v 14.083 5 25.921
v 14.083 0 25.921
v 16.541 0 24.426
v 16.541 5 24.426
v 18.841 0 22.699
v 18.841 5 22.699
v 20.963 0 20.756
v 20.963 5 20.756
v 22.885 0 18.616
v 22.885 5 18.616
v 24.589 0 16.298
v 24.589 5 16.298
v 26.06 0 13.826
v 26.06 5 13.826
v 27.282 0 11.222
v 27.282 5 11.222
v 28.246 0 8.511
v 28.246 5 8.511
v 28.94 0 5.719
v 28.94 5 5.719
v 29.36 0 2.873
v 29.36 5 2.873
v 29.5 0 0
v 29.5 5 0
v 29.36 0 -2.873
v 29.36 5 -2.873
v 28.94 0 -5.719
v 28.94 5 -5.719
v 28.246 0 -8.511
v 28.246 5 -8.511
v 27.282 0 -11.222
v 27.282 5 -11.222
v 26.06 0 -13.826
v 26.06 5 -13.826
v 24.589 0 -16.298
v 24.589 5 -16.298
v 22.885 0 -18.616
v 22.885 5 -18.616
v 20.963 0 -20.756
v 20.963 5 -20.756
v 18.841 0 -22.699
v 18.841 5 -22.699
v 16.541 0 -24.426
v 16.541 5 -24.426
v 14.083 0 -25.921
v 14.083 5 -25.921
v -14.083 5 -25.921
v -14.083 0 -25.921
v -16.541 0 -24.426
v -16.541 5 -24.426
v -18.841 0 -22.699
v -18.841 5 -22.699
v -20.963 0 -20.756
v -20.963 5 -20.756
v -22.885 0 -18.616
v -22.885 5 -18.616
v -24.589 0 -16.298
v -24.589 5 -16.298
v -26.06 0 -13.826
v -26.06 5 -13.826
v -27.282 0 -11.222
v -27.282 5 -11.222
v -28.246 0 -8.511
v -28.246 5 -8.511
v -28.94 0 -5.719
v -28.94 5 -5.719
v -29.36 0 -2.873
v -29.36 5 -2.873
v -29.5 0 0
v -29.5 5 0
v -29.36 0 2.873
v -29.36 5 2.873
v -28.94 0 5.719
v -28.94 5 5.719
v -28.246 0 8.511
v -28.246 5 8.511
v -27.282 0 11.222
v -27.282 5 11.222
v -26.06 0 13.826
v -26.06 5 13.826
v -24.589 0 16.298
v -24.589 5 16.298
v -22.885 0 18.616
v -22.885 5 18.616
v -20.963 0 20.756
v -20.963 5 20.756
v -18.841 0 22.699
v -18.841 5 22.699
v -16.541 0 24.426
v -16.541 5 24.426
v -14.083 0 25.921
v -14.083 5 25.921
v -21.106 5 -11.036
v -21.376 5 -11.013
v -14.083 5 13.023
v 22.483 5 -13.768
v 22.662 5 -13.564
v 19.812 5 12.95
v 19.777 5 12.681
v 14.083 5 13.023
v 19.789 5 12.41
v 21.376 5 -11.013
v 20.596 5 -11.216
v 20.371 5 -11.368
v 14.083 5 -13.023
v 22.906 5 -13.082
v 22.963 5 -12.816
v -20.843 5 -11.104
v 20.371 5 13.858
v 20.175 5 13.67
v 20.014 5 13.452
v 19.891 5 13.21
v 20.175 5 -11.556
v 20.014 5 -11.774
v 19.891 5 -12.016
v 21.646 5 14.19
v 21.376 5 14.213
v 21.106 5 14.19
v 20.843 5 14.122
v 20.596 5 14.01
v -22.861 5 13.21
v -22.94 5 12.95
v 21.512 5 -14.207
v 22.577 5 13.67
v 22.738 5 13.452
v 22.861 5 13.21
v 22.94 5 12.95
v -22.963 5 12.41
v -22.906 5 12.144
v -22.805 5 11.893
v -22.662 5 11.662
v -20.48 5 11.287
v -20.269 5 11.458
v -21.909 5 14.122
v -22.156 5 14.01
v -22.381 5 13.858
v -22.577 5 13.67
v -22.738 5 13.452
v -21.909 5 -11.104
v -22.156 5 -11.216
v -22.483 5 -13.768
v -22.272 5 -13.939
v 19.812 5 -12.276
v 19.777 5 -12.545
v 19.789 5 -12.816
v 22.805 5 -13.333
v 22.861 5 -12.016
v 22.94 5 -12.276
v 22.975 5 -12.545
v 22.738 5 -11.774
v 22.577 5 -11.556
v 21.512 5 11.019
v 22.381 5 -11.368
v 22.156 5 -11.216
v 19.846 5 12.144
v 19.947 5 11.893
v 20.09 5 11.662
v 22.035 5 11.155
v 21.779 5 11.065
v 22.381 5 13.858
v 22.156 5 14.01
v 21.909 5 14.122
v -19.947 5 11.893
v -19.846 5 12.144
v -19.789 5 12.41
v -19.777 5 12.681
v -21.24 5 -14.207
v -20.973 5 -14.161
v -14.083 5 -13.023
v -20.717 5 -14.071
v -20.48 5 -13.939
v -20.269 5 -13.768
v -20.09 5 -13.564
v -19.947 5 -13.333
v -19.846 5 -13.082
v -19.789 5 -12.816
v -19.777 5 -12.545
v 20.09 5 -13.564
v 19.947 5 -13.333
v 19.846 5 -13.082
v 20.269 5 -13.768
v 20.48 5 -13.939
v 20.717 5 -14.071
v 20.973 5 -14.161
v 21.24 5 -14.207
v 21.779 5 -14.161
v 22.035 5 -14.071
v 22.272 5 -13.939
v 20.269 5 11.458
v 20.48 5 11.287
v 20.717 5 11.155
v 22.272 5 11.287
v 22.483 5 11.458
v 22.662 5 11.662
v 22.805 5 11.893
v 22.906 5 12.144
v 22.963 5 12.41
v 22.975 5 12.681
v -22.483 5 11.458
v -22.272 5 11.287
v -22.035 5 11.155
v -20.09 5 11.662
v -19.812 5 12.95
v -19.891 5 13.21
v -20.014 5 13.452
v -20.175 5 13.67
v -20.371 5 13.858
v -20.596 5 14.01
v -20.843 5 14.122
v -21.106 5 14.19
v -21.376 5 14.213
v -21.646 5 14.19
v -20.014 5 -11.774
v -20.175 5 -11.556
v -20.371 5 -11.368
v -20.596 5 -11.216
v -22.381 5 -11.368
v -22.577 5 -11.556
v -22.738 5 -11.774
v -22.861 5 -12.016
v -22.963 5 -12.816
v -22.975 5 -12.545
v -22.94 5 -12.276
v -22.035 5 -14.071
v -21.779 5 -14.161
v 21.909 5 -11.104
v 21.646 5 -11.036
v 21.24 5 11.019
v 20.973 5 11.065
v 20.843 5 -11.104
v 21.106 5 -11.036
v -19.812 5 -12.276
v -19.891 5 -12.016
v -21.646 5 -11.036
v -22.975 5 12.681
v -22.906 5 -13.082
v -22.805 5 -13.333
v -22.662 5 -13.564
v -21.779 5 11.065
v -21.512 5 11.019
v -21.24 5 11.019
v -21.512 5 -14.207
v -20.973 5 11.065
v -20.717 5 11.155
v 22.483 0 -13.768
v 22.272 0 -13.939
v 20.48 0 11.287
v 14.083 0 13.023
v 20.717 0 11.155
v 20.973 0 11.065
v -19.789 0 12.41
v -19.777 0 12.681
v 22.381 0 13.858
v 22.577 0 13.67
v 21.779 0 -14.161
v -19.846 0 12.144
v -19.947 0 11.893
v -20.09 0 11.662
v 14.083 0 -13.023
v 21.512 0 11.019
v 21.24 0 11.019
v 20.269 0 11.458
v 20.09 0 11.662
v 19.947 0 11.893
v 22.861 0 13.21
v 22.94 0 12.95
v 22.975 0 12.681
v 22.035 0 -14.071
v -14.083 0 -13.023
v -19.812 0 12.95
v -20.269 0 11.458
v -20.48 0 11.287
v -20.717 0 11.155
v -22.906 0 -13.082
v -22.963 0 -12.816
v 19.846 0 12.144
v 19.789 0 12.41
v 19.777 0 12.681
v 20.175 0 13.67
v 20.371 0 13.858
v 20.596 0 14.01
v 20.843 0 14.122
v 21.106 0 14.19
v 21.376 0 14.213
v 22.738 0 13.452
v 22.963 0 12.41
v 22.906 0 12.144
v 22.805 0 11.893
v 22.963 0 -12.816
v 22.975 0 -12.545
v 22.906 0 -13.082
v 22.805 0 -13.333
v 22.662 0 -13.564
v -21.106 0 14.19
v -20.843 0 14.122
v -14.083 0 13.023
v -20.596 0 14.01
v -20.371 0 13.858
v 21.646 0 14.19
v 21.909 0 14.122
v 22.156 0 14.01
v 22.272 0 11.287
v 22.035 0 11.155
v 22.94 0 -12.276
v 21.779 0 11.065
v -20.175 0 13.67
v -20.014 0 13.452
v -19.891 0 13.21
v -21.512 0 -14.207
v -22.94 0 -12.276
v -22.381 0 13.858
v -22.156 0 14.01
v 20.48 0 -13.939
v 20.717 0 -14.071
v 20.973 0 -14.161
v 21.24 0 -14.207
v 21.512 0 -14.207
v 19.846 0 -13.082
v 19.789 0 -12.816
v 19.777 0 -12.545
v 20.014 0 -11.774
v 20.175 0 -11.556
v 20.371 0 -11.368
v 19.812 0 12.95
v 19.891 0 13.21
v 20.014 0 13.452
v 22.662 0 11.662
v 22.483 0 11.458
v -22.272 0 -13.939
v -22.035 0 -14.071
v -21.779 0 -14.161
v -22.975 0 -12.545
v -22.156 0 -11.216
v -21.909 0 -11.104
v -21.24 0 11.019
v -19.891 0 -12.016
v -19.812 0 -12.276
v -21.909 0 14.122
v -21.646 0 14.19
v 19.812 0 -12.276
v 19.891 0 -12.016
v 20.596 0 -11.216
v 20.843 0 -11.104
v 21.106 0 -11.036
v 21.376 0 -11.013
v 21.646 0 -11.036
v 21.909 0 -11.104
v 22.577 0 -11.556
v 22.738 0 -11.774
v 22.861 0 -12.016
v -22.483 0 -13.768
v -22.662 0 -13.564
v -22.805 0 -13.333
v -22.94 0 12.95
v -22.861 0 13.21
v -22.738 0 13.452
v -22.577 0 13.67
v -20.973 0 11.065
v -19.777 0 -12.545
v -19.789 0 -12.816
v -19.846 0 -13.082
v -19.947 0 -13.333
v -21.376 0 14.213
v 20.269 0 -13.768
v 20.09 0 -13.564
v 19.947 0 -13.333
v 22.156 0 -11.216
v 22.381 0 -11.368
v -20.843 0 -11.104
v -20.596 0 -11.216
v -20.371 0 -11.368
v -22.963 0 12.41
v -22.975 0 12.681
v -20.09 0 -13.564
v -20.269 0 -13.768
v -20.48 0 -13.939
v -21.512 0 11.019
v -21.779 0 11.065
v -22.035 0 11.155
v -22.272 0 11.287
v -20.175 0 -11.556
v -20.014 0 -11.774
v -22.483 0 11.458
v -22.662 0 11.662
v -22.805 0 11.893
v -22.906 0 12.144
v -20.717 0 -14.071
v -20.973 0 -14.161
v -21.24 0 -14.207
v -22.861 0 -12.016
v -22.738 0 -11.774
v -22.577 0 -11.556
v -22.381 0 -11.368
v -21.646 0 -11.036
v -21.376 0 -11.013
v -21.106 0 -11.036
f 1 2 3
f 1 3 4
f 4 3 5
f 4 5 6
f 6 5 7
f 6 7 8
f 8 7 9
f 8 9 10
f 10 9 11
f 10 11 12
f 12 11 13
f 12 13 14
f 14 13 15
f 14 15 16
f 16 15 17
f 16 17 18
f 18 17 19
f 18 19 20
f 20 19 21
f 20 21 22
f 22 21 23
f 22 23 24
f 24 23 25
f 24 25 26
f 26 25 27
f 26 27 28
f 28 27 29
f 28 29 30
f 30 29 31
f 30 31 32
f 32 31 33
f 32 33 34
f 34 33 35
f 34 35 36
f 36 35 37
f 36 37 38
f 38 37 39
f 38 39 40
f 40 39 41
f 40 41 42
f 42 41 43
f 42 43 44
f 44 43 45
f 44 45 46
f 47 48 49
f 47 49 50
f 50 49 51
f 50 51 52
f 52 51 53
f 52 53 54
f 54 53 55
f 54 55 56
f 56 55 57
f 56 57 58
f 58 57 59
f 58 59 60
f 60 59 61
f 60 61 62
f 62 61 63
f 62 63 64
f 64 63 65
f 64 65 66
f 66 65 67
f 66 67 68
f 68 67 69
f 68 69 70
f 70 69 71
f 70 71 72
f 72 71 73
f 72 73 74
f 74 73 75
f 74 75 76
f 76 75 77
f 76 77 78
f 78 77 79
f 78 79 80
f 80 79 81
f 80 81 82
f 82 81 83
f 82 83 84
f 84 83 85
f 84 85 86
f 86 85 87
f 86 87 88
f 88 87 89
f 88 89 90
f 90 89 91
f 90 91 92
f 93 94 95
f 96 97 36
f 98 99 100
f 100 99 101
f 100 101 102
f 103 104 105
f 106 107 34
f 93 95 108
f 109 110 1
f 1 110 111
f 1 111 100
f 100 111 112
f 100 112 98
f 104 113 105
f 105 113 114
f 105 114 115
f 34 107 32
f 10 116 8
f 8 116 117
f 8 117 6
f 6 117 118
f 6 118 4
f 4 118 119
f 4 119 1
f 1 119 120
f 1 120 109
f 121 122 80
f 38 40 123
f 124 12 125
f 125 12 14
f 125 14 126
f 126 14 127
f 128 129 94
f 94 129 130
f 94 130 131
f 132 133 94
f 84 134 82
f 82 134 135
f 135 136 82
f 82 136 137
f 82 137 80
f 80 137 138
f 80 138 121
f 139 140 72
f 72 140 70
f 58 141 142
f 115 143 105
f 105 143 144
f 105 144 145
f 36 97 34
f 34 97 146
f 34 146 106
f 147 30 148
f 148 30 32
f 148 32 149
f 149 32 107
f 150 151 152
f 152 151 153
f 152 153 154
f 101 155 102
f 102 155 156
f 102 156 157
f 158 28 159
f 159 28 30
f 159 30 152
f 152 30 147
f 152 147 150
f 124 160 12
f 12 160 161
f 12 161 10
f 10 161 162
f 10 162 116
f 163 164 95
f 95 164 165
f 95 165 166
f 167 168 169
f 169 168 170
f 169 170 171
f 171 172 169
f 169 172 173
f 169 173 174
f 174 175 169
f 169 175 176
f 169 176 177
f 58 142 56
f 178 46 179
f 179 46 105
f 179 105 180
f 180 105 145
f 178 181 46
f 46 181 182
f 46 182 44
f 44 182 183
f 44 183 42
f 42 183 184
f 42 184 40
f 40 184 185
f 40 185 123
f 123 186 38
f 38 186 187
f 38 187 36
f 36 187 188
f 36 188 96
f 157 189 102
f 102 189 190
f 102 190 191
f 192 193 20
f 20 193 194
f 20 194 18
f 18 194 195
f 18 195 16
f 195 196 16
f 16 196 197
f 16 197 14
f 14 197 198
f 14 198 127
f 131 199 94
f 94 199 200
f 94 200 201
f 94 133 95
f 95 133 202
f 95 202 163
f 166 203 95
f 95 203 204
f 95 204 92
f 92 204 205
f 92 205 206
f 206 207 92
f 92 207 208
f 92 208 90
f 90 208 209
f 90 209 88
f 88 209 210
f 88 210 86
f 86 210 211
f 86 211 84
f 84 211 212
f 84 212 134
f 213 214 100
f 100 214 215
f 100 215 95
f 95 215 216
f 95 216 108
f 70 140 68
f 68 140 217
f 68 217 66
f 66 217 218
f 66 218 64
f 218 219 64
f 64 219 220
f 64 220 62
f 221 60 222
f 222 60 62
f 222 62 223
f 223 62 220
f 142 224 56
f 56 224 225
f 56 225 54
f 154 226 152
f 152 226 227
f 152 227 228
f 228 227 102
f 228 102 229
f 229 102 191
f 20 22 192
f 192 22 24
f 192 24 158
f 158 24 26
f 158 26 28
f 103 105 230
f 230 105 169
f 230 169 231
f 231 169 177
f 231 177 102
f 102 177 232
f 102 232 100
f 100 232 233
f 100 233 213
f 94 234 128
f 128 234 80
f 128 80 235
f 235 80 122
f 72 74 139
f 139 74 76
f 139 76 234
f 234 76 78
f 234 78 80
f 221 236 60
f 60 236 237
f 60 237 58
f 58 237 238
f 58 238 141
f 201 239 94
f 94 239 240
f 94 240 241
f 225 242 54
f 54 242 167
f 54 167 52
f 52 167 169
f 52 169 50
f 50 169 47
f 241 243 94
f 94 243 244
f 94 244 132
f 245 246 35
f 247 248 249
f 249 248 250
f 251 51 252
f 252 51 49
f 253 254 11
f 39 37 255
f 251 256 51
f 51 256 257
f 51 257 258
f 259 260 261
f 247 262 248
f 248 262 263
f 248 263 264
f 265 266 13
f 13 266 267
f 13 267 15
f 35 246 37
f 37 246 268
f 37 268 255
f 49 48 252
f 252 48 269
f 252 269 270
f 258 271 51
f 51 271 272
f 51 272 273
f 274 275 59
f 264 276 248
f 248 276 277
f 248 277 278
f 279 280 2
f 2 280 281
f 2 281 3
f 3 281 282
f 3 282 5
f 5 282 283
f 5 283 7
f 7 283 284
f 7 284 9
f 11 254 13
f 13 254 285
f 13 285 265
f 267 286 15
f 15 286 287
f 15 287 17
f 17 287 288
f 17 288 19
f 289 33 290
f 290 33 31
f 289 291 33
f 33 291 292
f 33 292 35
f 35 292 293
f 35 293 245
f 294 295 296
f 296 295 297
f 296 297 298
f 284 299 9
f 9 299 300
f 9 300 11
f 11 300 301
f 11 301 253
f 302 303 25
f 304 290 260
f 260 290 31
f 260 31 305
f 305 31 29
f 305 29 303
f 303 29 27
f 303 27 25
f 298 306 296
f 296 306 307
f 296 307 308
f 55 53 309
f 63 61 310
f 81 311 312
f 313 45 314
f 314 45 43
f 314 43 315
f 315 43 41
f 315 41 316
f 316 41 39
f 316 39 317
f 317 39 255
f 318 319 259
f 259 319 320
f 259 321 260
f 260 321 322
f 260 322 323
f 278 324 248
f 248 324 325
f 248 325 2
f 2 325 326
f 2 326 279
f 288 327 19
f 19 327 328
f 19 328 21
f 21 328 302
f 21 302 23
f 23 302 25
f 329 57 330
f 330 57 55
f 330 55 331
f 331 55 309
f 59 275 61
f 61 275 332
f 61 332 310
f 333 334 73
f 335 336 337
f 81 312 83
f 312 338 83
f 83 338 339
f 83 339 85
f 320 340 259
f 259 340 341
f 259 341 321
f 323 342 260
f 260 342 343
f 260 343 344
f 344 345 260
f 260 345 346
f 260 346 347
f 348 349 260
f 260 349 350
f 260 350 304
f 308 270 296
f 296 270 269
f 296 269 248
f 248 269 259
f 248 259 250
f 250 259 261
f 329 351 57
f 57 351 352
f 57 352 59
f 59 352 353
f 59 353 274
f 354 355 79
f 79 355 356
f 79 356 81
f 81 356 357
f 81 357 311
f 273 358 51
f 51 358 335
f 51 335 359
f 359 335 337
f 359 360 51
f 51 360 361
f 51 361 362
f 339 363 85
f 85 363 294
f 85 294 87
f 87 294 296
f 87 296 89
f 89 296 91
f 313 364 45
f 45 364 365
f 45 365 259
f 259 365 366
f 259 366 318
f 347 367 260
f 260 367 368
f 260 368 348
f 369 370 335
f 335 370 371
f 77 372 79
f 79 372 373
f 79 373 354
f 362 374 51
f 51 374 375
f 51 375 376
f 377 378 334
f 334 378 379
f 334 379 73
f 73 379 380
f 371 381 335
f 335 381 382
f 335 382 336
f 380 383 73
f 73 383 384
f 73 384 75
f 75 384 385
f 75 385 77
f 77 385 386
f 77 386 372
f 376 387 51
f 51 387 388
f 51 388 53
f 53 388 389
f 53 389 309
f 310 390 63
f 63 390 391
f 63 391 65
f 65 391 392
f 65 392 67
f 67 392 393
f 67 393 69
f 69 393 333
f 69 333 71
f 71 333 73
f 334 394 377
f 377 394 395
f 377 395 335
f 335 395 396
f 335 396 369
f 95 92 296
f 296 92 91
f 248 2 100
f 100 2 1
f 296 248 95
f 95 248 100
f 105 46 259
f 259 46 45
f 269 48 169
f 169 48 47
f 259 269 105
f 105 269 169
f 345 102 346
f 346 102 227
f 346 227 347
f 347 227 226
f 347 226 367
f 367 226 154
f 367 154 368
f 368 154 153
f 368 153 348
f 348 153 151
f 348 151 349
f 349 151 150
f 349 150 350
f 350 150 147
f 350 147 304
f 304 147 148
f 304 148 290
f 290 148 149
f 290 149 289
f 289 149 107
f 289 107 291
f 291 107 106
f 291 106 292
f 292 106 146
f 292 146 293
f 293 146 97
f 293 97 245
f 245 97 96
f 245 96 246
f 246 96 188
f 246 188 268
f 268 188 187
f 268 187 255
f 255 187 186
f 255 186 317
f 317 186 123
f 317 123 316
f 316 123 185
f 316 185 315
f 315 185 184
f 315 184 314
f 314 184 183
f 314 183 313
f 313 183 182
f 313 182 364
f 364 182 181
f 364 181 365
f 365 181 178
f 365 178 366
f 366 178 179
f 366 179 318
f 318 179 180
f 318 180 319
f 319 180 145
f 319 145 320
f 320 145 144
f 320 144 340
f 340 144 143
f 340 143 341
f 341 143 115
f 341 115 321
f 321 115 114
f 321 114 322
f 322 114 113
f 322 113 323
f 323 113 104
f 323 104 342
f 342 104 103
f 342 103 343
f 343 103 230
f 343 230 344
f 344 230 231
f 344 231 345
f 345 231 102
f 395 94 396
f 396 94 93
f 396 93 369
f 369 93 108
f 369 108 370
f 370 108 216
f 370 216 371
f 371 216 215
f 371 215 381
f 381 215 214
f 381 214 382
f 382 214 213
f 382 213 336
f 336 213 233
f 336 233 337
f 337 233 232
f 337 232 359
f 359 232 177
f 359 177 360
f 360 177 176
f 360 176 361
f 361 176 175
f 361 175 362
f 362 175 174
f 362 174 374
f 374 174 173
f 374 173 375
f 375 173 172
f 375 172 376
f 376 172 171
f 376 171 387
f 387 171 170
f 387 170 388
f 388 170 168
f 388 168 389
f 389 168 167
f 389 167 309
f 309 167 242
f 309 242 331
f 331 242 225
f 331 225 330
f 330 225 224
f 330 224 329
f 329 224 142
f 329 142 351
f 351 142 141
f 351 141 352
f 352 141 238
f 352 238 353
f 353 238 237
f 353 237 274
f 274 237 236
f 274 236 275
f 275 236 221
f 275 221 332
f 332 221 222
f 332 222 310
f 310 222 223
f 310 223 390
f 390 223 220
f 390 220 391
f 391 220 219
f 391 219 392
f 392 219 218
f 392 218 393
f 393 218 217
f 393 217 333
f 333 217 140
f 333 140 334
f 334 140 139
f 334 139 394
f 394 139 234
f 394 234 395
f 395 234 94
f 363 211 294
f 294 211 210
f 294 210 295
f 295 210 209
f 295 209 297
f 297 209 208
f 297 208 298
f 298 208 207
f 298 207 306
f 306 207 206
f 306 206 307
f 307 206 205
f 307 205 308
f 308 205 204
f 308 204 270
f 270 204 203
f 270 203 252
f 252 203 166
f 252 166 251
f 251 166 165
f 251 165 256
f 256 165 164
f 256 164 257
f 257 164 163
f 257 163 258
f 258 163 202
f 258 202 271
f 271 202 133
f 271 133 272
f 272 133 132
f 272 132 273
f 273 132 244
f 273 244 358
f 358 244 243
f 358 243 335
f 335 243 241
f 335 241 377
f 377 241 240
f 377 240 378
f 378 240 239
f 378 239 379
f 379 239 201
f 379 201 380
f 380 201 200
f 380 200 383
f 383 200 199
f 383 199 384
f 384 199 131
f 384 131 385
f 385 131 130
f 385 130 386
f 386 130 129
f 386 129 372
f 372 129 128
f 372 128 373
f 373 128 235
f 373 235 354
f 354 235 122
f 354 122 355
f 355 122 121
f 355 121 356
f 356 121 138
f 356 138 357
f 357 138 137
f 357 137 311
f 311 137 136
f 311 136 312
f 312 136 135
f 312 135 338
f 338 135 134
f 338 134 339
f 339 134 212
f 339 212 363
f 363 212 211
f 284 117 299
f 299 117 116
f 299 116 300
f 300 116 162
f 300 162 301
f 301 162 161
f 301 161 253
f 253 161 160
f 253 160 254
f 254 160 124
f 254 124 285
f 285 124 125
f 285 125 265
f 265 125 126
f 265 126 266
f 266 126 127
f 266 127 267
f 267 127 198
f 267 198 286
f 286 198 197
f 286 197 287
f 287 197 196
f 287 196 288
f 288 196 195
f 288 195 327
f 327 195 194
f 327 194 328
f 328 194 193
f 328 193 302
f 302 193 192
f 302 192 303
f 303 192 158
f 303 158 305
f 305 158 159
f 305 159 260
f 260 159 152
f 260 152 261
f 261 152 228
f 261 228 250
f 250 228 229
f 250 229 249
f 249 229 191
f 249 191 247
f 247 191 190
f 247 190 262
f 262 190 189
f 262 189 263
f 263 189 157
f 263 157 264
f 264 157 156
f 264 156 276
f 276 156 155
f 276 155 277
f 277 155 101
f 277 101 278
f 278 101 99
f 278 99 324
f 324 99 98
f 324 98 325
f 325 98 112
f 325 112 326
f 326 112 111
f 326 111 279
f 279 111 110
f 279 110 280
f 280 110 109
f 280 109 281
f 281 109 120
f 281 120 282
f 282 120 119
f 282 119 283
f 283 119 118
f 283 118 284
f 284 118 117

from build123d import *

# Parameters (mm, degrees)
SKETCH_1_R          = 29.5
EXTRUDE_1_DEPTH     = 5
SKETCH_2_W          = 28.166253132
SKETCH_2_H          = 32.95394871
CUT_EXTRUDE_1_DEPTH = 43.017853348
SKETCH_6_R          = 1.6
CUT_EXTRUDE_5_DEPTH = 40.587441773


with BuildPart() as part:
    # 草图1 → 凸台-拉伸1 (new body)
    with BuildSketch(Plane(origin=(0, 0, 0), x_dir=(1, 0, 0), z_dir=(0, 1, 0))):
        with Locations(Location((0, 0, 0), (0, 0, 270))):
            Circle(SKETCH_1_R)
    extrude(amount=EXTRUDE_1_DEPTH)

    # 草图2 → 切除-拉伸1 (cut, through all)
    with BuildSketch(Plane(origin=(0, 5, 0), x_dir=(1, 0, 0), z_dir=(0, 1, 0))):
        with Locations((0, 29.5)):
            Rectangle(SKETCH_2_W, SKETCH_2_H)
        with Locations((0, -29.5)):
            Rectangle(SKETCH_2_W, SKETCH_2_H)
    extrude(amount=-CUT_EXTRUDE_1_DEPTH, mode=Mode.SUBTRACT)

    # 草图6 → 切除-拉伸5 (cut, through all)
    with BuildSketch(Plane(origin=(0, 5, 0), x_dir=(1, 0, 0), z_dir=(0, 1, 0))):
        with Locations(Location((-21.376, 12.613, 0), (0, 0, 270))):
            Circle(SKETCH_6_R)
        with Locations(Location((-21.376, -12.613, 0), (0, 0, 270))):
            Circle(SKETCH_6_R)
        with Locations(Location((21.376, 12.613, 0), (0, 0, 270))):
            Circle(SKETCH_6_R)
        with Locations(Location((21.376, -12.613, 0), (0, 0, 270))):
            Circle(SKETCH_6_R)
    extrude(amount=-CUT_EXTRUDE_5_DEPTH, mode=Mode.SUBTRACT)


solid = part.part
